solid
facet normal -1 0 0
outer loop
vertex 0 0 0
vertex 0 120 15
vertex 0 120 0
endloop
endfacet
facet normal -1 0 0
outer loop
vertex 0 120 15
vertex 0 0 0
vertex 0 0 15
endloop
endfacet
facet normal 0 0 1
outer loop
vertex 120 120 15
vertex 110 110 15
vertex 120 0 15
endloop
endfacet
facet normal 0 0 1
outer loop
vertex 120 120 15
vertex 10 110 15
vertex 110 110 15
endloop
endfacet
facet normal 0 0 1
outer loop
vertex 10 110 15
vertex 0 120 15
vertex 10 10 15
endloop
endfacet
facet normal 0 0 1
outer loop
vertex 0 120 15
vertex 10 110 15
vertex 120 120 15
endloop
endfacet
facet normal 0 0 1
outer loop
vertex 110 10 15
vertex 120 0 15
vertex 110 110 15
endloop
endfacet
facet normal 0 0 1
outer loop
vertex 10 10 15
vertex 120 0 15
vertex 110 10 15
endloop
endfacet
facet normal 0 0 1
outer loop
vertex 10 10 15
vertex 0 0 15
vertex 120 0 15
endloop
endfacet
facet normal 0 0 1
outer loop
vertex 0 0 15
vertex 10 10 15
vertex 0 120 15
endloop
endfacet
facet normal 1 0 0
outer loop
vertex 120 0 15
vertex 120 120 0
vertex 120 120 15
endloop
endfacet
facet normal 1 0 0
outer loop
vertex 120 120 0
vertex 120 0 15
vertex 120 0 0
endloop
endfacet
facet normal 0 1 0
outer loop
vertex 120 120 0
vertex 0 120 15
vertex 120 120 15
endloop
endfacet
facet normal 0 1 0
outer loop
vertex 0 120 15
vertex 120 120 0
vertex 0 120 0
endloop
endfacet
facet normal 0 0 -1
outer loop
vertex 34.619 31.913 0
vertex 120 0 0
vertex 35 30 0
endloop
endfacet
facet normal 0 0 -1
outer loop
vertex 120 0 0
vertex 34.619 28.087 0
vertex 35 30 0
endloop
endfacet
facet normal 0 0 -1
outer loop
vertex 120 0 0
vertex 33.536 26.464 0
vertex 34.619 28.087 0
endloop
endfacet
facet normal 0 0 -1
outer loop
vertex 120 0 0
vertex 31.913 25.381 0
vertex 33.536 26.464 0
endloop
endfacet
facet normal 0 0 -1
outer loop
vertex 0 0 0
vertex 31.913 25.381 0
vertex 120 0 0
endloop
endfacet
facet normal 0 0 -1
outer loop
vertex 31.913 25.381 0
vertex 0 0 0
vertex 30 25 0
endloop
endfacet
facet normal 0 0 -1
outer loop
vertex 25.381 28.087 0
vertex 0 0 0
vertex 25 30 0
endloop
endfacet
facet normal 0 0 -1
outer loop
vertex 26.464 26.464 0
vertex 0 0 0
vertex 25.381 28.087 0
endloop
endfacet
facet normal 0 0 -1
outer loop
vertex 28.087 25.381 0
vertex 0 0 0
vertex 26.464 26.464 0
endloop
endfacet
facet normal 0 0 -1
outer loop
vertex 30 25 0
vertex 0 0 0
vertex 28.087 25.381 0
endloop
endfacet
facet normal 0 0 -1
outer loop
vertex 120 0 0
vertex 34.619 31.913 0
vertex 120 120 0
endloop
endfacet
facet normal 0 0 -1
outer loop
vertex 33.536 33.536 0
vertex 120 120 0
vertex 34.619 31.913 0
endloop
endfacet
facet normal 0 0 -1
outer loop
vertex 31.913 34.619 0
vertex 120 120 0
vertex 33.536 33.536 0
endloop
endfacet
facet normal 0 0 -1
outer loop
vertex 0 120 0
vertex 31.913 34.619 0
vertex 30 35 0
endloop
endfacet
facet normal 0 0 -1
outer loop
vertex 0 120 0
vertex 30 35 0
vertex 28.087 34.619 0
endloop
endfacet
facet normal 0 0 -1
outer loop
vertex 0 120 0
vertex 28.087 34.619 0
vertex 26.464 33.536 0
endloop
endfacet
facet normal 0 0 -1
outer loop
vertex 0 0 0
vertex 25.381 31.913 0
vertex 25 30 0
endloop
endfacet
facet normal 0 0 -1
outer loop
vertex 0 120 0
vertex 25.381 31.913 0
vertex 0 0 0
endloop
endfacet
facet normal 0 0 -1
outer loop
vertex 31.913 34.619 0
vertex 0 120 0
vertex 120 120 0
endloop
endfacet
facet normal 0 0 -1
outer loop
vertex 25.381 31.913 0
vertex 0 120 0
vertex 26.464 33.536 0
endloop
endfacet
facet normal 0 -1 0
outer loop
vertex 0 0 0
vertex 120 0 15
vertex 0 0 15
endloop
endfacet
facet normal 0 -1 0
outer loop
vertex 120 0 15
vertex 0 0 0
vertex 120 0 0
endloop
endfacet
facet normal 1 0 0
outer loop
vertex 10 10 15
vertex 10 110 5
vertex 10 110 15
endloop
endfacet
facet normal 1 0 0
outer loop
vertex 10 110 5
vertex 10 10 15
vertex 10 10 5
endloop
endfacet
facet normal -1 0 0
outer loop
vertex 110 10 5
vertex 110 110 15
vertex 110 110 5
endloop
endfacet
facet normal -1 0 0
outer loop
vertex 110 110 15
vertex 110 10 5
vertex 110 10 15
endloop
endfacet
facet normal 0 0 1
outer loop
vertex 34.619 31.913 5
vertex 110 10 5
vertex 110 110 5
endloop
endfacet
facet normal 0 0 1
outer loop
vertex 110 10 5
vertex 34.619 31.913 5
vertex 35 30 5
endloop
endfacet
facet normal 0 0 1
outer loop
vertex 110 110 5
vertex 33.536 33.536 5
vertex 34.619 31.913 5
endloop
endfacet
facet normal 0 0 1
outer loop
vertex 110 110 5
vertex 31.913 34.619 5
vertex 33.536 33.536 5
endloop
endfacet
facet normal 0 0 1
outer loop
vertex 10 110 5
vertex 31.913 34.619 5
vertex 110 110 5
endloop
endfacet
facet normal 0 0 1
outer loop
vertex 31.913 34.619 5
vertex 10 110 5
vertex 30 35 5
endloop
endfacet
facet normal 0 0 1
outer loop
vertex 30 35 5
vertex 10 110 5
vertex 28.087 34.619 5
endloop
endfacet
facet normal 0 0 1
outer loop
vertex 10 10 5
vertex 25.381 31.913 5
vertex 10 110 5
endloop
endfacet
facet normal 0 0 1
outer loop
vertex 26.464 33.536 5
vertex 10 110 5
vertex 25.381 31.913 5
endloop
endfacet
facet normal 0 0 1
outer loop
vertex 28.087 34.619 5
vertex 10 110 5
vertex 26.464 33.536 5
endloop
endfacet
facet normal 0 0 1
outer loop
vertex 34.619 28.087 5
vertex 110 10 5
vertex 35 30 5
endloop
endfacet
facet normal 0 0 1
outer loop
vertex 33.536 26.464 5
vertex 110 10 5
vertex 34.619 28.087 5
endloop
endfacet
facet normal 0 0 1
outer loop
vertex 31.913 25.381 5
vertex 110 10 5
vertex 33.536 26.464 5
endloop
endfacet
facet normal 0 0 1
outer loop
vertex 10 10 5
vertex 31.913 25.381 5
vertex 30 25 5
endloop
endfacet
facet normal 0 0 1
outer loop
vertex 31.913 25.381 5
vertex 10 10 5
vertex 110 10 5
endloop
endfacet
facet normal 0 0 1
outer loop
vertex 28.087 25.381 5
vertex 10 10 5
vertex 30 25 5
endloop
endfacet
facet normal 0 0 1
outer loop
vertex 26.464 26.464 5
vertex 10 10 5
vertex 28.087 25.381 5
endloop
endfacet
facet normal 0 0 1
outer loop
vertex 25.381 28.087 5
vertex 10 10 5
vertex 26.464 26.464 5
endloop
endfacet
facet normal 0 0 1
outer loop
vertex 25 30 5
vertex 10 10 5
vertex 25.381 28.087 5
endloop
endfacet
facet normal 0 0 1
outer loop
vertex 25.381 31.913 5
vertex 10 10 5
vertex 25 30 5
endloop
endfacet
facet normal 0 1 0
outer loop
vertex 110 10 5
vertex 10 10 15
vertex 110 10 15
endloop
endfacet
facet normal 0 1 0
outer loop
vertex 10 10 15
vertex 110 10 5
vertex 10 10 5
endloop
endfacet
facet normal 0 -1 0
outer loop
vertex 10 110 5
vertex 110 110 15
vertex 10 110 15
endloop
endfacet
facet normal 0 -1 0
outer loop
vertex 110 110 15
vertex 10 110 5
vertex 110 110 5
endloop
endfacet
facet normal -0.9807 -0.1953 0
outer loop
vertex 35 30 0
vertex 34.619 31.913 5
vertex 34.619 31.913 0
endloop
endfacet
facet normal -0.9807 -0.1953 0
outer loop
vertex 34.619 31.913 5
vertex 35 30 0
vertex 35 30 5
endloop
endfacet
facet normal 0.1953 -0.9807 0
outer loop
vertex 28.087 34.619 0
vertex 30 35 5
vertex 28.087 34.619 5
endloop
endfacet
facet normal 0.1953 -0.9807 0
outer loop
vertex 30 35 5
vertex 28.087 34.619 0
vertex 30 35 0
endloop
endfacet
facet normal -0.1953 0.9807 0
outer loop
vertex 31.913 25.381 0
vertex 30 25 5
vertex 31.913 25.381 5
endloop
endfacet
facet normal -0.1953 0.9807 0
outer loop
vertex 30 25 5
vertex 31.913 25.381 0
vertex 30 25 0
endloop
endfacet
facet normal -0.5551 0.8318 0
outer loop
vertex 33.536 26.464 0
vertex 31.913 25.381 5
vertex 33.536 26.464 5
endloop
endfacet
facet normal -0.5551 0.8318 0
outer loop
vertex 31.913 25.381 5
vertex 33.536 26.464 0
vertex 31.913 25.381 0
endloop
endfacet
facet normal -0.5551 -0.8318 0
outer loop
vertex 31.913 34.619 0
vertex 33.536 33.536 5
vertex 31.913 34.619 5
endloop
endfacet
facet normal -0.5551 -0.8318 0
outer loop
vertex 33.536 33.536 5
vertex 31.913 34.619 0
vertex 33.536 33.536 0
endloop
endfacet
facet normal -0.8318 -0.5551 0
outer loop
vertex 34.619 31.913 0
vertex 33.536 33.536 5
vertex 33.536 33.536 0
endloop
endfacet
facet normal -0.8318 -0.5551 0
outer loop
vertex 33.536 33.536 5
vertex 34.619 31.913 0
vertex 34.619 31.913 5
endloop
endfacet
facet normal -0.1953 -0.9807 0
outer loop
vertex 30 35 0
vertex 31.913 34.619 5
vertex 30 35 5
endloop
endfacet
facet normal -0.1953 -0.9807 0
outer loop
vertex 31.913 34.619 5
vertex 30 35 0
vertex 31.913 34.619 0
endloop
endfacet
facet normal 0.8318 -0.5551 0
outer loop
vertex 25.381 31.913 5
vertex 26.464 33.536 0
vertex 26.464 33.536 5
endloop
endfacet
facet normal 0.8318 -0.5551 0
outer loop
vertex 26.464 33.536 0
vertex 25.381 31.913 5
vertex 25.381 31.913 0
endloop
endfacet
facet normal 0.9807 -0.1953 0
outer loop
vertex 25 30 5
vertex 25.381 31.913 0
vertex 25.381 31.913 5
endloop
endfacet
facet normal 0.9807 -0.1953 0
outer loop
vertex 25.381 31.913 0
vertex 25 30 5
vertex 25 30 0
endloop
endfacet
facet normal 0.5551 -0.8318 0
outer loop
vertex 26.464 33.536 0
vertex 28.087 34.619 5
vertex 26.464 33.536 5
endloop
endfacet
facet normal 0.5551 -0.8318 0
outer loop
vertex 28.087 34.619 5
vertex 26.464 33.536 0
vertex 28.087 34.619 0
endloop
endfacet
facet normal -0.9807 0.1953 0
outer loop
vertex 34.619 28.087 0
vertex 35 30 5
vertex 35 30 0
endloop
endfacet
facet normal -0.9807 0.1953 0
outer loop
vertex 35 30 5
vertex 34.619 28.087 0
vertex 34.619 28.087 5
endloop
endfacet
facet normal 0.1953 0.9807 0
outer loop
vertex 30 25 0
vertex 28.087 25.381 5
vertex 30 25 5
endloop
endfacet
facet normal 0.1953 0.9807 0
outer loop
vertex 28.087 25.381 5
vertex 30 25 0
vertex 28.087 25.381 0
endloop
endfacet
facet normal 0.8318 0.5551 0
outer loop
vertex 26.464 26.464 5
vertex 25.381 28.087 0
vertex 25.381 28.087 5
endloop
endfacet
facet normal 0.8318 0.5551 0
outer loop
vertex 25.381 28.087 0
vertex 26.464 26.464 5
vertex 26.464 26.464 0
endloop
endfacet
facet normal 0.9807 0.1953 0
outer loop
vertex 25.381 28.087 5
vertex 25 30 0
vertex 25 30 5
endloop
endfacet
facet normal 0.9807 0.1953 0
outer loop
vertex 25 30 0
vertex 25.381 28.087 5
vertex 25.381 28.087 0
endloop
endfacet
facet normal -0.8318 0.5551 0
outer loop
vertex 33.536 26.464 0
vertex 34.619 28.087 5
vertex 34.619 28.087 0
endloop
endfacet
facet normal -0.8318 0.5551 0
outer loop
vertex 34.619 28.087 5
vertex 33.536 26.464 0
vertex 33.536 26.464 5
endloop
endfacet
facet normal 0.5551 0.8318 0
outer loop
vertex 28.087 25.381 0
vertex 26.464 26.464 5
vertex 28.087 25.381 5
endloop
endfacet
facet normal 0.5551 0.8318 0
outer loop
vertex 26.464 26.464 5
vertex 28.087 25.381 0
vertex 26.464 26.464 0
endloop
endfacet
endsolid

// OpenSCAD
// Eicher Bulldog Bauteil 1
difference() {
cube([120,120,15]);
translate([10,10,5])cube([100,100,10]);
translate([30,30,0])cylinder(5,10/2,10/2);    
}
